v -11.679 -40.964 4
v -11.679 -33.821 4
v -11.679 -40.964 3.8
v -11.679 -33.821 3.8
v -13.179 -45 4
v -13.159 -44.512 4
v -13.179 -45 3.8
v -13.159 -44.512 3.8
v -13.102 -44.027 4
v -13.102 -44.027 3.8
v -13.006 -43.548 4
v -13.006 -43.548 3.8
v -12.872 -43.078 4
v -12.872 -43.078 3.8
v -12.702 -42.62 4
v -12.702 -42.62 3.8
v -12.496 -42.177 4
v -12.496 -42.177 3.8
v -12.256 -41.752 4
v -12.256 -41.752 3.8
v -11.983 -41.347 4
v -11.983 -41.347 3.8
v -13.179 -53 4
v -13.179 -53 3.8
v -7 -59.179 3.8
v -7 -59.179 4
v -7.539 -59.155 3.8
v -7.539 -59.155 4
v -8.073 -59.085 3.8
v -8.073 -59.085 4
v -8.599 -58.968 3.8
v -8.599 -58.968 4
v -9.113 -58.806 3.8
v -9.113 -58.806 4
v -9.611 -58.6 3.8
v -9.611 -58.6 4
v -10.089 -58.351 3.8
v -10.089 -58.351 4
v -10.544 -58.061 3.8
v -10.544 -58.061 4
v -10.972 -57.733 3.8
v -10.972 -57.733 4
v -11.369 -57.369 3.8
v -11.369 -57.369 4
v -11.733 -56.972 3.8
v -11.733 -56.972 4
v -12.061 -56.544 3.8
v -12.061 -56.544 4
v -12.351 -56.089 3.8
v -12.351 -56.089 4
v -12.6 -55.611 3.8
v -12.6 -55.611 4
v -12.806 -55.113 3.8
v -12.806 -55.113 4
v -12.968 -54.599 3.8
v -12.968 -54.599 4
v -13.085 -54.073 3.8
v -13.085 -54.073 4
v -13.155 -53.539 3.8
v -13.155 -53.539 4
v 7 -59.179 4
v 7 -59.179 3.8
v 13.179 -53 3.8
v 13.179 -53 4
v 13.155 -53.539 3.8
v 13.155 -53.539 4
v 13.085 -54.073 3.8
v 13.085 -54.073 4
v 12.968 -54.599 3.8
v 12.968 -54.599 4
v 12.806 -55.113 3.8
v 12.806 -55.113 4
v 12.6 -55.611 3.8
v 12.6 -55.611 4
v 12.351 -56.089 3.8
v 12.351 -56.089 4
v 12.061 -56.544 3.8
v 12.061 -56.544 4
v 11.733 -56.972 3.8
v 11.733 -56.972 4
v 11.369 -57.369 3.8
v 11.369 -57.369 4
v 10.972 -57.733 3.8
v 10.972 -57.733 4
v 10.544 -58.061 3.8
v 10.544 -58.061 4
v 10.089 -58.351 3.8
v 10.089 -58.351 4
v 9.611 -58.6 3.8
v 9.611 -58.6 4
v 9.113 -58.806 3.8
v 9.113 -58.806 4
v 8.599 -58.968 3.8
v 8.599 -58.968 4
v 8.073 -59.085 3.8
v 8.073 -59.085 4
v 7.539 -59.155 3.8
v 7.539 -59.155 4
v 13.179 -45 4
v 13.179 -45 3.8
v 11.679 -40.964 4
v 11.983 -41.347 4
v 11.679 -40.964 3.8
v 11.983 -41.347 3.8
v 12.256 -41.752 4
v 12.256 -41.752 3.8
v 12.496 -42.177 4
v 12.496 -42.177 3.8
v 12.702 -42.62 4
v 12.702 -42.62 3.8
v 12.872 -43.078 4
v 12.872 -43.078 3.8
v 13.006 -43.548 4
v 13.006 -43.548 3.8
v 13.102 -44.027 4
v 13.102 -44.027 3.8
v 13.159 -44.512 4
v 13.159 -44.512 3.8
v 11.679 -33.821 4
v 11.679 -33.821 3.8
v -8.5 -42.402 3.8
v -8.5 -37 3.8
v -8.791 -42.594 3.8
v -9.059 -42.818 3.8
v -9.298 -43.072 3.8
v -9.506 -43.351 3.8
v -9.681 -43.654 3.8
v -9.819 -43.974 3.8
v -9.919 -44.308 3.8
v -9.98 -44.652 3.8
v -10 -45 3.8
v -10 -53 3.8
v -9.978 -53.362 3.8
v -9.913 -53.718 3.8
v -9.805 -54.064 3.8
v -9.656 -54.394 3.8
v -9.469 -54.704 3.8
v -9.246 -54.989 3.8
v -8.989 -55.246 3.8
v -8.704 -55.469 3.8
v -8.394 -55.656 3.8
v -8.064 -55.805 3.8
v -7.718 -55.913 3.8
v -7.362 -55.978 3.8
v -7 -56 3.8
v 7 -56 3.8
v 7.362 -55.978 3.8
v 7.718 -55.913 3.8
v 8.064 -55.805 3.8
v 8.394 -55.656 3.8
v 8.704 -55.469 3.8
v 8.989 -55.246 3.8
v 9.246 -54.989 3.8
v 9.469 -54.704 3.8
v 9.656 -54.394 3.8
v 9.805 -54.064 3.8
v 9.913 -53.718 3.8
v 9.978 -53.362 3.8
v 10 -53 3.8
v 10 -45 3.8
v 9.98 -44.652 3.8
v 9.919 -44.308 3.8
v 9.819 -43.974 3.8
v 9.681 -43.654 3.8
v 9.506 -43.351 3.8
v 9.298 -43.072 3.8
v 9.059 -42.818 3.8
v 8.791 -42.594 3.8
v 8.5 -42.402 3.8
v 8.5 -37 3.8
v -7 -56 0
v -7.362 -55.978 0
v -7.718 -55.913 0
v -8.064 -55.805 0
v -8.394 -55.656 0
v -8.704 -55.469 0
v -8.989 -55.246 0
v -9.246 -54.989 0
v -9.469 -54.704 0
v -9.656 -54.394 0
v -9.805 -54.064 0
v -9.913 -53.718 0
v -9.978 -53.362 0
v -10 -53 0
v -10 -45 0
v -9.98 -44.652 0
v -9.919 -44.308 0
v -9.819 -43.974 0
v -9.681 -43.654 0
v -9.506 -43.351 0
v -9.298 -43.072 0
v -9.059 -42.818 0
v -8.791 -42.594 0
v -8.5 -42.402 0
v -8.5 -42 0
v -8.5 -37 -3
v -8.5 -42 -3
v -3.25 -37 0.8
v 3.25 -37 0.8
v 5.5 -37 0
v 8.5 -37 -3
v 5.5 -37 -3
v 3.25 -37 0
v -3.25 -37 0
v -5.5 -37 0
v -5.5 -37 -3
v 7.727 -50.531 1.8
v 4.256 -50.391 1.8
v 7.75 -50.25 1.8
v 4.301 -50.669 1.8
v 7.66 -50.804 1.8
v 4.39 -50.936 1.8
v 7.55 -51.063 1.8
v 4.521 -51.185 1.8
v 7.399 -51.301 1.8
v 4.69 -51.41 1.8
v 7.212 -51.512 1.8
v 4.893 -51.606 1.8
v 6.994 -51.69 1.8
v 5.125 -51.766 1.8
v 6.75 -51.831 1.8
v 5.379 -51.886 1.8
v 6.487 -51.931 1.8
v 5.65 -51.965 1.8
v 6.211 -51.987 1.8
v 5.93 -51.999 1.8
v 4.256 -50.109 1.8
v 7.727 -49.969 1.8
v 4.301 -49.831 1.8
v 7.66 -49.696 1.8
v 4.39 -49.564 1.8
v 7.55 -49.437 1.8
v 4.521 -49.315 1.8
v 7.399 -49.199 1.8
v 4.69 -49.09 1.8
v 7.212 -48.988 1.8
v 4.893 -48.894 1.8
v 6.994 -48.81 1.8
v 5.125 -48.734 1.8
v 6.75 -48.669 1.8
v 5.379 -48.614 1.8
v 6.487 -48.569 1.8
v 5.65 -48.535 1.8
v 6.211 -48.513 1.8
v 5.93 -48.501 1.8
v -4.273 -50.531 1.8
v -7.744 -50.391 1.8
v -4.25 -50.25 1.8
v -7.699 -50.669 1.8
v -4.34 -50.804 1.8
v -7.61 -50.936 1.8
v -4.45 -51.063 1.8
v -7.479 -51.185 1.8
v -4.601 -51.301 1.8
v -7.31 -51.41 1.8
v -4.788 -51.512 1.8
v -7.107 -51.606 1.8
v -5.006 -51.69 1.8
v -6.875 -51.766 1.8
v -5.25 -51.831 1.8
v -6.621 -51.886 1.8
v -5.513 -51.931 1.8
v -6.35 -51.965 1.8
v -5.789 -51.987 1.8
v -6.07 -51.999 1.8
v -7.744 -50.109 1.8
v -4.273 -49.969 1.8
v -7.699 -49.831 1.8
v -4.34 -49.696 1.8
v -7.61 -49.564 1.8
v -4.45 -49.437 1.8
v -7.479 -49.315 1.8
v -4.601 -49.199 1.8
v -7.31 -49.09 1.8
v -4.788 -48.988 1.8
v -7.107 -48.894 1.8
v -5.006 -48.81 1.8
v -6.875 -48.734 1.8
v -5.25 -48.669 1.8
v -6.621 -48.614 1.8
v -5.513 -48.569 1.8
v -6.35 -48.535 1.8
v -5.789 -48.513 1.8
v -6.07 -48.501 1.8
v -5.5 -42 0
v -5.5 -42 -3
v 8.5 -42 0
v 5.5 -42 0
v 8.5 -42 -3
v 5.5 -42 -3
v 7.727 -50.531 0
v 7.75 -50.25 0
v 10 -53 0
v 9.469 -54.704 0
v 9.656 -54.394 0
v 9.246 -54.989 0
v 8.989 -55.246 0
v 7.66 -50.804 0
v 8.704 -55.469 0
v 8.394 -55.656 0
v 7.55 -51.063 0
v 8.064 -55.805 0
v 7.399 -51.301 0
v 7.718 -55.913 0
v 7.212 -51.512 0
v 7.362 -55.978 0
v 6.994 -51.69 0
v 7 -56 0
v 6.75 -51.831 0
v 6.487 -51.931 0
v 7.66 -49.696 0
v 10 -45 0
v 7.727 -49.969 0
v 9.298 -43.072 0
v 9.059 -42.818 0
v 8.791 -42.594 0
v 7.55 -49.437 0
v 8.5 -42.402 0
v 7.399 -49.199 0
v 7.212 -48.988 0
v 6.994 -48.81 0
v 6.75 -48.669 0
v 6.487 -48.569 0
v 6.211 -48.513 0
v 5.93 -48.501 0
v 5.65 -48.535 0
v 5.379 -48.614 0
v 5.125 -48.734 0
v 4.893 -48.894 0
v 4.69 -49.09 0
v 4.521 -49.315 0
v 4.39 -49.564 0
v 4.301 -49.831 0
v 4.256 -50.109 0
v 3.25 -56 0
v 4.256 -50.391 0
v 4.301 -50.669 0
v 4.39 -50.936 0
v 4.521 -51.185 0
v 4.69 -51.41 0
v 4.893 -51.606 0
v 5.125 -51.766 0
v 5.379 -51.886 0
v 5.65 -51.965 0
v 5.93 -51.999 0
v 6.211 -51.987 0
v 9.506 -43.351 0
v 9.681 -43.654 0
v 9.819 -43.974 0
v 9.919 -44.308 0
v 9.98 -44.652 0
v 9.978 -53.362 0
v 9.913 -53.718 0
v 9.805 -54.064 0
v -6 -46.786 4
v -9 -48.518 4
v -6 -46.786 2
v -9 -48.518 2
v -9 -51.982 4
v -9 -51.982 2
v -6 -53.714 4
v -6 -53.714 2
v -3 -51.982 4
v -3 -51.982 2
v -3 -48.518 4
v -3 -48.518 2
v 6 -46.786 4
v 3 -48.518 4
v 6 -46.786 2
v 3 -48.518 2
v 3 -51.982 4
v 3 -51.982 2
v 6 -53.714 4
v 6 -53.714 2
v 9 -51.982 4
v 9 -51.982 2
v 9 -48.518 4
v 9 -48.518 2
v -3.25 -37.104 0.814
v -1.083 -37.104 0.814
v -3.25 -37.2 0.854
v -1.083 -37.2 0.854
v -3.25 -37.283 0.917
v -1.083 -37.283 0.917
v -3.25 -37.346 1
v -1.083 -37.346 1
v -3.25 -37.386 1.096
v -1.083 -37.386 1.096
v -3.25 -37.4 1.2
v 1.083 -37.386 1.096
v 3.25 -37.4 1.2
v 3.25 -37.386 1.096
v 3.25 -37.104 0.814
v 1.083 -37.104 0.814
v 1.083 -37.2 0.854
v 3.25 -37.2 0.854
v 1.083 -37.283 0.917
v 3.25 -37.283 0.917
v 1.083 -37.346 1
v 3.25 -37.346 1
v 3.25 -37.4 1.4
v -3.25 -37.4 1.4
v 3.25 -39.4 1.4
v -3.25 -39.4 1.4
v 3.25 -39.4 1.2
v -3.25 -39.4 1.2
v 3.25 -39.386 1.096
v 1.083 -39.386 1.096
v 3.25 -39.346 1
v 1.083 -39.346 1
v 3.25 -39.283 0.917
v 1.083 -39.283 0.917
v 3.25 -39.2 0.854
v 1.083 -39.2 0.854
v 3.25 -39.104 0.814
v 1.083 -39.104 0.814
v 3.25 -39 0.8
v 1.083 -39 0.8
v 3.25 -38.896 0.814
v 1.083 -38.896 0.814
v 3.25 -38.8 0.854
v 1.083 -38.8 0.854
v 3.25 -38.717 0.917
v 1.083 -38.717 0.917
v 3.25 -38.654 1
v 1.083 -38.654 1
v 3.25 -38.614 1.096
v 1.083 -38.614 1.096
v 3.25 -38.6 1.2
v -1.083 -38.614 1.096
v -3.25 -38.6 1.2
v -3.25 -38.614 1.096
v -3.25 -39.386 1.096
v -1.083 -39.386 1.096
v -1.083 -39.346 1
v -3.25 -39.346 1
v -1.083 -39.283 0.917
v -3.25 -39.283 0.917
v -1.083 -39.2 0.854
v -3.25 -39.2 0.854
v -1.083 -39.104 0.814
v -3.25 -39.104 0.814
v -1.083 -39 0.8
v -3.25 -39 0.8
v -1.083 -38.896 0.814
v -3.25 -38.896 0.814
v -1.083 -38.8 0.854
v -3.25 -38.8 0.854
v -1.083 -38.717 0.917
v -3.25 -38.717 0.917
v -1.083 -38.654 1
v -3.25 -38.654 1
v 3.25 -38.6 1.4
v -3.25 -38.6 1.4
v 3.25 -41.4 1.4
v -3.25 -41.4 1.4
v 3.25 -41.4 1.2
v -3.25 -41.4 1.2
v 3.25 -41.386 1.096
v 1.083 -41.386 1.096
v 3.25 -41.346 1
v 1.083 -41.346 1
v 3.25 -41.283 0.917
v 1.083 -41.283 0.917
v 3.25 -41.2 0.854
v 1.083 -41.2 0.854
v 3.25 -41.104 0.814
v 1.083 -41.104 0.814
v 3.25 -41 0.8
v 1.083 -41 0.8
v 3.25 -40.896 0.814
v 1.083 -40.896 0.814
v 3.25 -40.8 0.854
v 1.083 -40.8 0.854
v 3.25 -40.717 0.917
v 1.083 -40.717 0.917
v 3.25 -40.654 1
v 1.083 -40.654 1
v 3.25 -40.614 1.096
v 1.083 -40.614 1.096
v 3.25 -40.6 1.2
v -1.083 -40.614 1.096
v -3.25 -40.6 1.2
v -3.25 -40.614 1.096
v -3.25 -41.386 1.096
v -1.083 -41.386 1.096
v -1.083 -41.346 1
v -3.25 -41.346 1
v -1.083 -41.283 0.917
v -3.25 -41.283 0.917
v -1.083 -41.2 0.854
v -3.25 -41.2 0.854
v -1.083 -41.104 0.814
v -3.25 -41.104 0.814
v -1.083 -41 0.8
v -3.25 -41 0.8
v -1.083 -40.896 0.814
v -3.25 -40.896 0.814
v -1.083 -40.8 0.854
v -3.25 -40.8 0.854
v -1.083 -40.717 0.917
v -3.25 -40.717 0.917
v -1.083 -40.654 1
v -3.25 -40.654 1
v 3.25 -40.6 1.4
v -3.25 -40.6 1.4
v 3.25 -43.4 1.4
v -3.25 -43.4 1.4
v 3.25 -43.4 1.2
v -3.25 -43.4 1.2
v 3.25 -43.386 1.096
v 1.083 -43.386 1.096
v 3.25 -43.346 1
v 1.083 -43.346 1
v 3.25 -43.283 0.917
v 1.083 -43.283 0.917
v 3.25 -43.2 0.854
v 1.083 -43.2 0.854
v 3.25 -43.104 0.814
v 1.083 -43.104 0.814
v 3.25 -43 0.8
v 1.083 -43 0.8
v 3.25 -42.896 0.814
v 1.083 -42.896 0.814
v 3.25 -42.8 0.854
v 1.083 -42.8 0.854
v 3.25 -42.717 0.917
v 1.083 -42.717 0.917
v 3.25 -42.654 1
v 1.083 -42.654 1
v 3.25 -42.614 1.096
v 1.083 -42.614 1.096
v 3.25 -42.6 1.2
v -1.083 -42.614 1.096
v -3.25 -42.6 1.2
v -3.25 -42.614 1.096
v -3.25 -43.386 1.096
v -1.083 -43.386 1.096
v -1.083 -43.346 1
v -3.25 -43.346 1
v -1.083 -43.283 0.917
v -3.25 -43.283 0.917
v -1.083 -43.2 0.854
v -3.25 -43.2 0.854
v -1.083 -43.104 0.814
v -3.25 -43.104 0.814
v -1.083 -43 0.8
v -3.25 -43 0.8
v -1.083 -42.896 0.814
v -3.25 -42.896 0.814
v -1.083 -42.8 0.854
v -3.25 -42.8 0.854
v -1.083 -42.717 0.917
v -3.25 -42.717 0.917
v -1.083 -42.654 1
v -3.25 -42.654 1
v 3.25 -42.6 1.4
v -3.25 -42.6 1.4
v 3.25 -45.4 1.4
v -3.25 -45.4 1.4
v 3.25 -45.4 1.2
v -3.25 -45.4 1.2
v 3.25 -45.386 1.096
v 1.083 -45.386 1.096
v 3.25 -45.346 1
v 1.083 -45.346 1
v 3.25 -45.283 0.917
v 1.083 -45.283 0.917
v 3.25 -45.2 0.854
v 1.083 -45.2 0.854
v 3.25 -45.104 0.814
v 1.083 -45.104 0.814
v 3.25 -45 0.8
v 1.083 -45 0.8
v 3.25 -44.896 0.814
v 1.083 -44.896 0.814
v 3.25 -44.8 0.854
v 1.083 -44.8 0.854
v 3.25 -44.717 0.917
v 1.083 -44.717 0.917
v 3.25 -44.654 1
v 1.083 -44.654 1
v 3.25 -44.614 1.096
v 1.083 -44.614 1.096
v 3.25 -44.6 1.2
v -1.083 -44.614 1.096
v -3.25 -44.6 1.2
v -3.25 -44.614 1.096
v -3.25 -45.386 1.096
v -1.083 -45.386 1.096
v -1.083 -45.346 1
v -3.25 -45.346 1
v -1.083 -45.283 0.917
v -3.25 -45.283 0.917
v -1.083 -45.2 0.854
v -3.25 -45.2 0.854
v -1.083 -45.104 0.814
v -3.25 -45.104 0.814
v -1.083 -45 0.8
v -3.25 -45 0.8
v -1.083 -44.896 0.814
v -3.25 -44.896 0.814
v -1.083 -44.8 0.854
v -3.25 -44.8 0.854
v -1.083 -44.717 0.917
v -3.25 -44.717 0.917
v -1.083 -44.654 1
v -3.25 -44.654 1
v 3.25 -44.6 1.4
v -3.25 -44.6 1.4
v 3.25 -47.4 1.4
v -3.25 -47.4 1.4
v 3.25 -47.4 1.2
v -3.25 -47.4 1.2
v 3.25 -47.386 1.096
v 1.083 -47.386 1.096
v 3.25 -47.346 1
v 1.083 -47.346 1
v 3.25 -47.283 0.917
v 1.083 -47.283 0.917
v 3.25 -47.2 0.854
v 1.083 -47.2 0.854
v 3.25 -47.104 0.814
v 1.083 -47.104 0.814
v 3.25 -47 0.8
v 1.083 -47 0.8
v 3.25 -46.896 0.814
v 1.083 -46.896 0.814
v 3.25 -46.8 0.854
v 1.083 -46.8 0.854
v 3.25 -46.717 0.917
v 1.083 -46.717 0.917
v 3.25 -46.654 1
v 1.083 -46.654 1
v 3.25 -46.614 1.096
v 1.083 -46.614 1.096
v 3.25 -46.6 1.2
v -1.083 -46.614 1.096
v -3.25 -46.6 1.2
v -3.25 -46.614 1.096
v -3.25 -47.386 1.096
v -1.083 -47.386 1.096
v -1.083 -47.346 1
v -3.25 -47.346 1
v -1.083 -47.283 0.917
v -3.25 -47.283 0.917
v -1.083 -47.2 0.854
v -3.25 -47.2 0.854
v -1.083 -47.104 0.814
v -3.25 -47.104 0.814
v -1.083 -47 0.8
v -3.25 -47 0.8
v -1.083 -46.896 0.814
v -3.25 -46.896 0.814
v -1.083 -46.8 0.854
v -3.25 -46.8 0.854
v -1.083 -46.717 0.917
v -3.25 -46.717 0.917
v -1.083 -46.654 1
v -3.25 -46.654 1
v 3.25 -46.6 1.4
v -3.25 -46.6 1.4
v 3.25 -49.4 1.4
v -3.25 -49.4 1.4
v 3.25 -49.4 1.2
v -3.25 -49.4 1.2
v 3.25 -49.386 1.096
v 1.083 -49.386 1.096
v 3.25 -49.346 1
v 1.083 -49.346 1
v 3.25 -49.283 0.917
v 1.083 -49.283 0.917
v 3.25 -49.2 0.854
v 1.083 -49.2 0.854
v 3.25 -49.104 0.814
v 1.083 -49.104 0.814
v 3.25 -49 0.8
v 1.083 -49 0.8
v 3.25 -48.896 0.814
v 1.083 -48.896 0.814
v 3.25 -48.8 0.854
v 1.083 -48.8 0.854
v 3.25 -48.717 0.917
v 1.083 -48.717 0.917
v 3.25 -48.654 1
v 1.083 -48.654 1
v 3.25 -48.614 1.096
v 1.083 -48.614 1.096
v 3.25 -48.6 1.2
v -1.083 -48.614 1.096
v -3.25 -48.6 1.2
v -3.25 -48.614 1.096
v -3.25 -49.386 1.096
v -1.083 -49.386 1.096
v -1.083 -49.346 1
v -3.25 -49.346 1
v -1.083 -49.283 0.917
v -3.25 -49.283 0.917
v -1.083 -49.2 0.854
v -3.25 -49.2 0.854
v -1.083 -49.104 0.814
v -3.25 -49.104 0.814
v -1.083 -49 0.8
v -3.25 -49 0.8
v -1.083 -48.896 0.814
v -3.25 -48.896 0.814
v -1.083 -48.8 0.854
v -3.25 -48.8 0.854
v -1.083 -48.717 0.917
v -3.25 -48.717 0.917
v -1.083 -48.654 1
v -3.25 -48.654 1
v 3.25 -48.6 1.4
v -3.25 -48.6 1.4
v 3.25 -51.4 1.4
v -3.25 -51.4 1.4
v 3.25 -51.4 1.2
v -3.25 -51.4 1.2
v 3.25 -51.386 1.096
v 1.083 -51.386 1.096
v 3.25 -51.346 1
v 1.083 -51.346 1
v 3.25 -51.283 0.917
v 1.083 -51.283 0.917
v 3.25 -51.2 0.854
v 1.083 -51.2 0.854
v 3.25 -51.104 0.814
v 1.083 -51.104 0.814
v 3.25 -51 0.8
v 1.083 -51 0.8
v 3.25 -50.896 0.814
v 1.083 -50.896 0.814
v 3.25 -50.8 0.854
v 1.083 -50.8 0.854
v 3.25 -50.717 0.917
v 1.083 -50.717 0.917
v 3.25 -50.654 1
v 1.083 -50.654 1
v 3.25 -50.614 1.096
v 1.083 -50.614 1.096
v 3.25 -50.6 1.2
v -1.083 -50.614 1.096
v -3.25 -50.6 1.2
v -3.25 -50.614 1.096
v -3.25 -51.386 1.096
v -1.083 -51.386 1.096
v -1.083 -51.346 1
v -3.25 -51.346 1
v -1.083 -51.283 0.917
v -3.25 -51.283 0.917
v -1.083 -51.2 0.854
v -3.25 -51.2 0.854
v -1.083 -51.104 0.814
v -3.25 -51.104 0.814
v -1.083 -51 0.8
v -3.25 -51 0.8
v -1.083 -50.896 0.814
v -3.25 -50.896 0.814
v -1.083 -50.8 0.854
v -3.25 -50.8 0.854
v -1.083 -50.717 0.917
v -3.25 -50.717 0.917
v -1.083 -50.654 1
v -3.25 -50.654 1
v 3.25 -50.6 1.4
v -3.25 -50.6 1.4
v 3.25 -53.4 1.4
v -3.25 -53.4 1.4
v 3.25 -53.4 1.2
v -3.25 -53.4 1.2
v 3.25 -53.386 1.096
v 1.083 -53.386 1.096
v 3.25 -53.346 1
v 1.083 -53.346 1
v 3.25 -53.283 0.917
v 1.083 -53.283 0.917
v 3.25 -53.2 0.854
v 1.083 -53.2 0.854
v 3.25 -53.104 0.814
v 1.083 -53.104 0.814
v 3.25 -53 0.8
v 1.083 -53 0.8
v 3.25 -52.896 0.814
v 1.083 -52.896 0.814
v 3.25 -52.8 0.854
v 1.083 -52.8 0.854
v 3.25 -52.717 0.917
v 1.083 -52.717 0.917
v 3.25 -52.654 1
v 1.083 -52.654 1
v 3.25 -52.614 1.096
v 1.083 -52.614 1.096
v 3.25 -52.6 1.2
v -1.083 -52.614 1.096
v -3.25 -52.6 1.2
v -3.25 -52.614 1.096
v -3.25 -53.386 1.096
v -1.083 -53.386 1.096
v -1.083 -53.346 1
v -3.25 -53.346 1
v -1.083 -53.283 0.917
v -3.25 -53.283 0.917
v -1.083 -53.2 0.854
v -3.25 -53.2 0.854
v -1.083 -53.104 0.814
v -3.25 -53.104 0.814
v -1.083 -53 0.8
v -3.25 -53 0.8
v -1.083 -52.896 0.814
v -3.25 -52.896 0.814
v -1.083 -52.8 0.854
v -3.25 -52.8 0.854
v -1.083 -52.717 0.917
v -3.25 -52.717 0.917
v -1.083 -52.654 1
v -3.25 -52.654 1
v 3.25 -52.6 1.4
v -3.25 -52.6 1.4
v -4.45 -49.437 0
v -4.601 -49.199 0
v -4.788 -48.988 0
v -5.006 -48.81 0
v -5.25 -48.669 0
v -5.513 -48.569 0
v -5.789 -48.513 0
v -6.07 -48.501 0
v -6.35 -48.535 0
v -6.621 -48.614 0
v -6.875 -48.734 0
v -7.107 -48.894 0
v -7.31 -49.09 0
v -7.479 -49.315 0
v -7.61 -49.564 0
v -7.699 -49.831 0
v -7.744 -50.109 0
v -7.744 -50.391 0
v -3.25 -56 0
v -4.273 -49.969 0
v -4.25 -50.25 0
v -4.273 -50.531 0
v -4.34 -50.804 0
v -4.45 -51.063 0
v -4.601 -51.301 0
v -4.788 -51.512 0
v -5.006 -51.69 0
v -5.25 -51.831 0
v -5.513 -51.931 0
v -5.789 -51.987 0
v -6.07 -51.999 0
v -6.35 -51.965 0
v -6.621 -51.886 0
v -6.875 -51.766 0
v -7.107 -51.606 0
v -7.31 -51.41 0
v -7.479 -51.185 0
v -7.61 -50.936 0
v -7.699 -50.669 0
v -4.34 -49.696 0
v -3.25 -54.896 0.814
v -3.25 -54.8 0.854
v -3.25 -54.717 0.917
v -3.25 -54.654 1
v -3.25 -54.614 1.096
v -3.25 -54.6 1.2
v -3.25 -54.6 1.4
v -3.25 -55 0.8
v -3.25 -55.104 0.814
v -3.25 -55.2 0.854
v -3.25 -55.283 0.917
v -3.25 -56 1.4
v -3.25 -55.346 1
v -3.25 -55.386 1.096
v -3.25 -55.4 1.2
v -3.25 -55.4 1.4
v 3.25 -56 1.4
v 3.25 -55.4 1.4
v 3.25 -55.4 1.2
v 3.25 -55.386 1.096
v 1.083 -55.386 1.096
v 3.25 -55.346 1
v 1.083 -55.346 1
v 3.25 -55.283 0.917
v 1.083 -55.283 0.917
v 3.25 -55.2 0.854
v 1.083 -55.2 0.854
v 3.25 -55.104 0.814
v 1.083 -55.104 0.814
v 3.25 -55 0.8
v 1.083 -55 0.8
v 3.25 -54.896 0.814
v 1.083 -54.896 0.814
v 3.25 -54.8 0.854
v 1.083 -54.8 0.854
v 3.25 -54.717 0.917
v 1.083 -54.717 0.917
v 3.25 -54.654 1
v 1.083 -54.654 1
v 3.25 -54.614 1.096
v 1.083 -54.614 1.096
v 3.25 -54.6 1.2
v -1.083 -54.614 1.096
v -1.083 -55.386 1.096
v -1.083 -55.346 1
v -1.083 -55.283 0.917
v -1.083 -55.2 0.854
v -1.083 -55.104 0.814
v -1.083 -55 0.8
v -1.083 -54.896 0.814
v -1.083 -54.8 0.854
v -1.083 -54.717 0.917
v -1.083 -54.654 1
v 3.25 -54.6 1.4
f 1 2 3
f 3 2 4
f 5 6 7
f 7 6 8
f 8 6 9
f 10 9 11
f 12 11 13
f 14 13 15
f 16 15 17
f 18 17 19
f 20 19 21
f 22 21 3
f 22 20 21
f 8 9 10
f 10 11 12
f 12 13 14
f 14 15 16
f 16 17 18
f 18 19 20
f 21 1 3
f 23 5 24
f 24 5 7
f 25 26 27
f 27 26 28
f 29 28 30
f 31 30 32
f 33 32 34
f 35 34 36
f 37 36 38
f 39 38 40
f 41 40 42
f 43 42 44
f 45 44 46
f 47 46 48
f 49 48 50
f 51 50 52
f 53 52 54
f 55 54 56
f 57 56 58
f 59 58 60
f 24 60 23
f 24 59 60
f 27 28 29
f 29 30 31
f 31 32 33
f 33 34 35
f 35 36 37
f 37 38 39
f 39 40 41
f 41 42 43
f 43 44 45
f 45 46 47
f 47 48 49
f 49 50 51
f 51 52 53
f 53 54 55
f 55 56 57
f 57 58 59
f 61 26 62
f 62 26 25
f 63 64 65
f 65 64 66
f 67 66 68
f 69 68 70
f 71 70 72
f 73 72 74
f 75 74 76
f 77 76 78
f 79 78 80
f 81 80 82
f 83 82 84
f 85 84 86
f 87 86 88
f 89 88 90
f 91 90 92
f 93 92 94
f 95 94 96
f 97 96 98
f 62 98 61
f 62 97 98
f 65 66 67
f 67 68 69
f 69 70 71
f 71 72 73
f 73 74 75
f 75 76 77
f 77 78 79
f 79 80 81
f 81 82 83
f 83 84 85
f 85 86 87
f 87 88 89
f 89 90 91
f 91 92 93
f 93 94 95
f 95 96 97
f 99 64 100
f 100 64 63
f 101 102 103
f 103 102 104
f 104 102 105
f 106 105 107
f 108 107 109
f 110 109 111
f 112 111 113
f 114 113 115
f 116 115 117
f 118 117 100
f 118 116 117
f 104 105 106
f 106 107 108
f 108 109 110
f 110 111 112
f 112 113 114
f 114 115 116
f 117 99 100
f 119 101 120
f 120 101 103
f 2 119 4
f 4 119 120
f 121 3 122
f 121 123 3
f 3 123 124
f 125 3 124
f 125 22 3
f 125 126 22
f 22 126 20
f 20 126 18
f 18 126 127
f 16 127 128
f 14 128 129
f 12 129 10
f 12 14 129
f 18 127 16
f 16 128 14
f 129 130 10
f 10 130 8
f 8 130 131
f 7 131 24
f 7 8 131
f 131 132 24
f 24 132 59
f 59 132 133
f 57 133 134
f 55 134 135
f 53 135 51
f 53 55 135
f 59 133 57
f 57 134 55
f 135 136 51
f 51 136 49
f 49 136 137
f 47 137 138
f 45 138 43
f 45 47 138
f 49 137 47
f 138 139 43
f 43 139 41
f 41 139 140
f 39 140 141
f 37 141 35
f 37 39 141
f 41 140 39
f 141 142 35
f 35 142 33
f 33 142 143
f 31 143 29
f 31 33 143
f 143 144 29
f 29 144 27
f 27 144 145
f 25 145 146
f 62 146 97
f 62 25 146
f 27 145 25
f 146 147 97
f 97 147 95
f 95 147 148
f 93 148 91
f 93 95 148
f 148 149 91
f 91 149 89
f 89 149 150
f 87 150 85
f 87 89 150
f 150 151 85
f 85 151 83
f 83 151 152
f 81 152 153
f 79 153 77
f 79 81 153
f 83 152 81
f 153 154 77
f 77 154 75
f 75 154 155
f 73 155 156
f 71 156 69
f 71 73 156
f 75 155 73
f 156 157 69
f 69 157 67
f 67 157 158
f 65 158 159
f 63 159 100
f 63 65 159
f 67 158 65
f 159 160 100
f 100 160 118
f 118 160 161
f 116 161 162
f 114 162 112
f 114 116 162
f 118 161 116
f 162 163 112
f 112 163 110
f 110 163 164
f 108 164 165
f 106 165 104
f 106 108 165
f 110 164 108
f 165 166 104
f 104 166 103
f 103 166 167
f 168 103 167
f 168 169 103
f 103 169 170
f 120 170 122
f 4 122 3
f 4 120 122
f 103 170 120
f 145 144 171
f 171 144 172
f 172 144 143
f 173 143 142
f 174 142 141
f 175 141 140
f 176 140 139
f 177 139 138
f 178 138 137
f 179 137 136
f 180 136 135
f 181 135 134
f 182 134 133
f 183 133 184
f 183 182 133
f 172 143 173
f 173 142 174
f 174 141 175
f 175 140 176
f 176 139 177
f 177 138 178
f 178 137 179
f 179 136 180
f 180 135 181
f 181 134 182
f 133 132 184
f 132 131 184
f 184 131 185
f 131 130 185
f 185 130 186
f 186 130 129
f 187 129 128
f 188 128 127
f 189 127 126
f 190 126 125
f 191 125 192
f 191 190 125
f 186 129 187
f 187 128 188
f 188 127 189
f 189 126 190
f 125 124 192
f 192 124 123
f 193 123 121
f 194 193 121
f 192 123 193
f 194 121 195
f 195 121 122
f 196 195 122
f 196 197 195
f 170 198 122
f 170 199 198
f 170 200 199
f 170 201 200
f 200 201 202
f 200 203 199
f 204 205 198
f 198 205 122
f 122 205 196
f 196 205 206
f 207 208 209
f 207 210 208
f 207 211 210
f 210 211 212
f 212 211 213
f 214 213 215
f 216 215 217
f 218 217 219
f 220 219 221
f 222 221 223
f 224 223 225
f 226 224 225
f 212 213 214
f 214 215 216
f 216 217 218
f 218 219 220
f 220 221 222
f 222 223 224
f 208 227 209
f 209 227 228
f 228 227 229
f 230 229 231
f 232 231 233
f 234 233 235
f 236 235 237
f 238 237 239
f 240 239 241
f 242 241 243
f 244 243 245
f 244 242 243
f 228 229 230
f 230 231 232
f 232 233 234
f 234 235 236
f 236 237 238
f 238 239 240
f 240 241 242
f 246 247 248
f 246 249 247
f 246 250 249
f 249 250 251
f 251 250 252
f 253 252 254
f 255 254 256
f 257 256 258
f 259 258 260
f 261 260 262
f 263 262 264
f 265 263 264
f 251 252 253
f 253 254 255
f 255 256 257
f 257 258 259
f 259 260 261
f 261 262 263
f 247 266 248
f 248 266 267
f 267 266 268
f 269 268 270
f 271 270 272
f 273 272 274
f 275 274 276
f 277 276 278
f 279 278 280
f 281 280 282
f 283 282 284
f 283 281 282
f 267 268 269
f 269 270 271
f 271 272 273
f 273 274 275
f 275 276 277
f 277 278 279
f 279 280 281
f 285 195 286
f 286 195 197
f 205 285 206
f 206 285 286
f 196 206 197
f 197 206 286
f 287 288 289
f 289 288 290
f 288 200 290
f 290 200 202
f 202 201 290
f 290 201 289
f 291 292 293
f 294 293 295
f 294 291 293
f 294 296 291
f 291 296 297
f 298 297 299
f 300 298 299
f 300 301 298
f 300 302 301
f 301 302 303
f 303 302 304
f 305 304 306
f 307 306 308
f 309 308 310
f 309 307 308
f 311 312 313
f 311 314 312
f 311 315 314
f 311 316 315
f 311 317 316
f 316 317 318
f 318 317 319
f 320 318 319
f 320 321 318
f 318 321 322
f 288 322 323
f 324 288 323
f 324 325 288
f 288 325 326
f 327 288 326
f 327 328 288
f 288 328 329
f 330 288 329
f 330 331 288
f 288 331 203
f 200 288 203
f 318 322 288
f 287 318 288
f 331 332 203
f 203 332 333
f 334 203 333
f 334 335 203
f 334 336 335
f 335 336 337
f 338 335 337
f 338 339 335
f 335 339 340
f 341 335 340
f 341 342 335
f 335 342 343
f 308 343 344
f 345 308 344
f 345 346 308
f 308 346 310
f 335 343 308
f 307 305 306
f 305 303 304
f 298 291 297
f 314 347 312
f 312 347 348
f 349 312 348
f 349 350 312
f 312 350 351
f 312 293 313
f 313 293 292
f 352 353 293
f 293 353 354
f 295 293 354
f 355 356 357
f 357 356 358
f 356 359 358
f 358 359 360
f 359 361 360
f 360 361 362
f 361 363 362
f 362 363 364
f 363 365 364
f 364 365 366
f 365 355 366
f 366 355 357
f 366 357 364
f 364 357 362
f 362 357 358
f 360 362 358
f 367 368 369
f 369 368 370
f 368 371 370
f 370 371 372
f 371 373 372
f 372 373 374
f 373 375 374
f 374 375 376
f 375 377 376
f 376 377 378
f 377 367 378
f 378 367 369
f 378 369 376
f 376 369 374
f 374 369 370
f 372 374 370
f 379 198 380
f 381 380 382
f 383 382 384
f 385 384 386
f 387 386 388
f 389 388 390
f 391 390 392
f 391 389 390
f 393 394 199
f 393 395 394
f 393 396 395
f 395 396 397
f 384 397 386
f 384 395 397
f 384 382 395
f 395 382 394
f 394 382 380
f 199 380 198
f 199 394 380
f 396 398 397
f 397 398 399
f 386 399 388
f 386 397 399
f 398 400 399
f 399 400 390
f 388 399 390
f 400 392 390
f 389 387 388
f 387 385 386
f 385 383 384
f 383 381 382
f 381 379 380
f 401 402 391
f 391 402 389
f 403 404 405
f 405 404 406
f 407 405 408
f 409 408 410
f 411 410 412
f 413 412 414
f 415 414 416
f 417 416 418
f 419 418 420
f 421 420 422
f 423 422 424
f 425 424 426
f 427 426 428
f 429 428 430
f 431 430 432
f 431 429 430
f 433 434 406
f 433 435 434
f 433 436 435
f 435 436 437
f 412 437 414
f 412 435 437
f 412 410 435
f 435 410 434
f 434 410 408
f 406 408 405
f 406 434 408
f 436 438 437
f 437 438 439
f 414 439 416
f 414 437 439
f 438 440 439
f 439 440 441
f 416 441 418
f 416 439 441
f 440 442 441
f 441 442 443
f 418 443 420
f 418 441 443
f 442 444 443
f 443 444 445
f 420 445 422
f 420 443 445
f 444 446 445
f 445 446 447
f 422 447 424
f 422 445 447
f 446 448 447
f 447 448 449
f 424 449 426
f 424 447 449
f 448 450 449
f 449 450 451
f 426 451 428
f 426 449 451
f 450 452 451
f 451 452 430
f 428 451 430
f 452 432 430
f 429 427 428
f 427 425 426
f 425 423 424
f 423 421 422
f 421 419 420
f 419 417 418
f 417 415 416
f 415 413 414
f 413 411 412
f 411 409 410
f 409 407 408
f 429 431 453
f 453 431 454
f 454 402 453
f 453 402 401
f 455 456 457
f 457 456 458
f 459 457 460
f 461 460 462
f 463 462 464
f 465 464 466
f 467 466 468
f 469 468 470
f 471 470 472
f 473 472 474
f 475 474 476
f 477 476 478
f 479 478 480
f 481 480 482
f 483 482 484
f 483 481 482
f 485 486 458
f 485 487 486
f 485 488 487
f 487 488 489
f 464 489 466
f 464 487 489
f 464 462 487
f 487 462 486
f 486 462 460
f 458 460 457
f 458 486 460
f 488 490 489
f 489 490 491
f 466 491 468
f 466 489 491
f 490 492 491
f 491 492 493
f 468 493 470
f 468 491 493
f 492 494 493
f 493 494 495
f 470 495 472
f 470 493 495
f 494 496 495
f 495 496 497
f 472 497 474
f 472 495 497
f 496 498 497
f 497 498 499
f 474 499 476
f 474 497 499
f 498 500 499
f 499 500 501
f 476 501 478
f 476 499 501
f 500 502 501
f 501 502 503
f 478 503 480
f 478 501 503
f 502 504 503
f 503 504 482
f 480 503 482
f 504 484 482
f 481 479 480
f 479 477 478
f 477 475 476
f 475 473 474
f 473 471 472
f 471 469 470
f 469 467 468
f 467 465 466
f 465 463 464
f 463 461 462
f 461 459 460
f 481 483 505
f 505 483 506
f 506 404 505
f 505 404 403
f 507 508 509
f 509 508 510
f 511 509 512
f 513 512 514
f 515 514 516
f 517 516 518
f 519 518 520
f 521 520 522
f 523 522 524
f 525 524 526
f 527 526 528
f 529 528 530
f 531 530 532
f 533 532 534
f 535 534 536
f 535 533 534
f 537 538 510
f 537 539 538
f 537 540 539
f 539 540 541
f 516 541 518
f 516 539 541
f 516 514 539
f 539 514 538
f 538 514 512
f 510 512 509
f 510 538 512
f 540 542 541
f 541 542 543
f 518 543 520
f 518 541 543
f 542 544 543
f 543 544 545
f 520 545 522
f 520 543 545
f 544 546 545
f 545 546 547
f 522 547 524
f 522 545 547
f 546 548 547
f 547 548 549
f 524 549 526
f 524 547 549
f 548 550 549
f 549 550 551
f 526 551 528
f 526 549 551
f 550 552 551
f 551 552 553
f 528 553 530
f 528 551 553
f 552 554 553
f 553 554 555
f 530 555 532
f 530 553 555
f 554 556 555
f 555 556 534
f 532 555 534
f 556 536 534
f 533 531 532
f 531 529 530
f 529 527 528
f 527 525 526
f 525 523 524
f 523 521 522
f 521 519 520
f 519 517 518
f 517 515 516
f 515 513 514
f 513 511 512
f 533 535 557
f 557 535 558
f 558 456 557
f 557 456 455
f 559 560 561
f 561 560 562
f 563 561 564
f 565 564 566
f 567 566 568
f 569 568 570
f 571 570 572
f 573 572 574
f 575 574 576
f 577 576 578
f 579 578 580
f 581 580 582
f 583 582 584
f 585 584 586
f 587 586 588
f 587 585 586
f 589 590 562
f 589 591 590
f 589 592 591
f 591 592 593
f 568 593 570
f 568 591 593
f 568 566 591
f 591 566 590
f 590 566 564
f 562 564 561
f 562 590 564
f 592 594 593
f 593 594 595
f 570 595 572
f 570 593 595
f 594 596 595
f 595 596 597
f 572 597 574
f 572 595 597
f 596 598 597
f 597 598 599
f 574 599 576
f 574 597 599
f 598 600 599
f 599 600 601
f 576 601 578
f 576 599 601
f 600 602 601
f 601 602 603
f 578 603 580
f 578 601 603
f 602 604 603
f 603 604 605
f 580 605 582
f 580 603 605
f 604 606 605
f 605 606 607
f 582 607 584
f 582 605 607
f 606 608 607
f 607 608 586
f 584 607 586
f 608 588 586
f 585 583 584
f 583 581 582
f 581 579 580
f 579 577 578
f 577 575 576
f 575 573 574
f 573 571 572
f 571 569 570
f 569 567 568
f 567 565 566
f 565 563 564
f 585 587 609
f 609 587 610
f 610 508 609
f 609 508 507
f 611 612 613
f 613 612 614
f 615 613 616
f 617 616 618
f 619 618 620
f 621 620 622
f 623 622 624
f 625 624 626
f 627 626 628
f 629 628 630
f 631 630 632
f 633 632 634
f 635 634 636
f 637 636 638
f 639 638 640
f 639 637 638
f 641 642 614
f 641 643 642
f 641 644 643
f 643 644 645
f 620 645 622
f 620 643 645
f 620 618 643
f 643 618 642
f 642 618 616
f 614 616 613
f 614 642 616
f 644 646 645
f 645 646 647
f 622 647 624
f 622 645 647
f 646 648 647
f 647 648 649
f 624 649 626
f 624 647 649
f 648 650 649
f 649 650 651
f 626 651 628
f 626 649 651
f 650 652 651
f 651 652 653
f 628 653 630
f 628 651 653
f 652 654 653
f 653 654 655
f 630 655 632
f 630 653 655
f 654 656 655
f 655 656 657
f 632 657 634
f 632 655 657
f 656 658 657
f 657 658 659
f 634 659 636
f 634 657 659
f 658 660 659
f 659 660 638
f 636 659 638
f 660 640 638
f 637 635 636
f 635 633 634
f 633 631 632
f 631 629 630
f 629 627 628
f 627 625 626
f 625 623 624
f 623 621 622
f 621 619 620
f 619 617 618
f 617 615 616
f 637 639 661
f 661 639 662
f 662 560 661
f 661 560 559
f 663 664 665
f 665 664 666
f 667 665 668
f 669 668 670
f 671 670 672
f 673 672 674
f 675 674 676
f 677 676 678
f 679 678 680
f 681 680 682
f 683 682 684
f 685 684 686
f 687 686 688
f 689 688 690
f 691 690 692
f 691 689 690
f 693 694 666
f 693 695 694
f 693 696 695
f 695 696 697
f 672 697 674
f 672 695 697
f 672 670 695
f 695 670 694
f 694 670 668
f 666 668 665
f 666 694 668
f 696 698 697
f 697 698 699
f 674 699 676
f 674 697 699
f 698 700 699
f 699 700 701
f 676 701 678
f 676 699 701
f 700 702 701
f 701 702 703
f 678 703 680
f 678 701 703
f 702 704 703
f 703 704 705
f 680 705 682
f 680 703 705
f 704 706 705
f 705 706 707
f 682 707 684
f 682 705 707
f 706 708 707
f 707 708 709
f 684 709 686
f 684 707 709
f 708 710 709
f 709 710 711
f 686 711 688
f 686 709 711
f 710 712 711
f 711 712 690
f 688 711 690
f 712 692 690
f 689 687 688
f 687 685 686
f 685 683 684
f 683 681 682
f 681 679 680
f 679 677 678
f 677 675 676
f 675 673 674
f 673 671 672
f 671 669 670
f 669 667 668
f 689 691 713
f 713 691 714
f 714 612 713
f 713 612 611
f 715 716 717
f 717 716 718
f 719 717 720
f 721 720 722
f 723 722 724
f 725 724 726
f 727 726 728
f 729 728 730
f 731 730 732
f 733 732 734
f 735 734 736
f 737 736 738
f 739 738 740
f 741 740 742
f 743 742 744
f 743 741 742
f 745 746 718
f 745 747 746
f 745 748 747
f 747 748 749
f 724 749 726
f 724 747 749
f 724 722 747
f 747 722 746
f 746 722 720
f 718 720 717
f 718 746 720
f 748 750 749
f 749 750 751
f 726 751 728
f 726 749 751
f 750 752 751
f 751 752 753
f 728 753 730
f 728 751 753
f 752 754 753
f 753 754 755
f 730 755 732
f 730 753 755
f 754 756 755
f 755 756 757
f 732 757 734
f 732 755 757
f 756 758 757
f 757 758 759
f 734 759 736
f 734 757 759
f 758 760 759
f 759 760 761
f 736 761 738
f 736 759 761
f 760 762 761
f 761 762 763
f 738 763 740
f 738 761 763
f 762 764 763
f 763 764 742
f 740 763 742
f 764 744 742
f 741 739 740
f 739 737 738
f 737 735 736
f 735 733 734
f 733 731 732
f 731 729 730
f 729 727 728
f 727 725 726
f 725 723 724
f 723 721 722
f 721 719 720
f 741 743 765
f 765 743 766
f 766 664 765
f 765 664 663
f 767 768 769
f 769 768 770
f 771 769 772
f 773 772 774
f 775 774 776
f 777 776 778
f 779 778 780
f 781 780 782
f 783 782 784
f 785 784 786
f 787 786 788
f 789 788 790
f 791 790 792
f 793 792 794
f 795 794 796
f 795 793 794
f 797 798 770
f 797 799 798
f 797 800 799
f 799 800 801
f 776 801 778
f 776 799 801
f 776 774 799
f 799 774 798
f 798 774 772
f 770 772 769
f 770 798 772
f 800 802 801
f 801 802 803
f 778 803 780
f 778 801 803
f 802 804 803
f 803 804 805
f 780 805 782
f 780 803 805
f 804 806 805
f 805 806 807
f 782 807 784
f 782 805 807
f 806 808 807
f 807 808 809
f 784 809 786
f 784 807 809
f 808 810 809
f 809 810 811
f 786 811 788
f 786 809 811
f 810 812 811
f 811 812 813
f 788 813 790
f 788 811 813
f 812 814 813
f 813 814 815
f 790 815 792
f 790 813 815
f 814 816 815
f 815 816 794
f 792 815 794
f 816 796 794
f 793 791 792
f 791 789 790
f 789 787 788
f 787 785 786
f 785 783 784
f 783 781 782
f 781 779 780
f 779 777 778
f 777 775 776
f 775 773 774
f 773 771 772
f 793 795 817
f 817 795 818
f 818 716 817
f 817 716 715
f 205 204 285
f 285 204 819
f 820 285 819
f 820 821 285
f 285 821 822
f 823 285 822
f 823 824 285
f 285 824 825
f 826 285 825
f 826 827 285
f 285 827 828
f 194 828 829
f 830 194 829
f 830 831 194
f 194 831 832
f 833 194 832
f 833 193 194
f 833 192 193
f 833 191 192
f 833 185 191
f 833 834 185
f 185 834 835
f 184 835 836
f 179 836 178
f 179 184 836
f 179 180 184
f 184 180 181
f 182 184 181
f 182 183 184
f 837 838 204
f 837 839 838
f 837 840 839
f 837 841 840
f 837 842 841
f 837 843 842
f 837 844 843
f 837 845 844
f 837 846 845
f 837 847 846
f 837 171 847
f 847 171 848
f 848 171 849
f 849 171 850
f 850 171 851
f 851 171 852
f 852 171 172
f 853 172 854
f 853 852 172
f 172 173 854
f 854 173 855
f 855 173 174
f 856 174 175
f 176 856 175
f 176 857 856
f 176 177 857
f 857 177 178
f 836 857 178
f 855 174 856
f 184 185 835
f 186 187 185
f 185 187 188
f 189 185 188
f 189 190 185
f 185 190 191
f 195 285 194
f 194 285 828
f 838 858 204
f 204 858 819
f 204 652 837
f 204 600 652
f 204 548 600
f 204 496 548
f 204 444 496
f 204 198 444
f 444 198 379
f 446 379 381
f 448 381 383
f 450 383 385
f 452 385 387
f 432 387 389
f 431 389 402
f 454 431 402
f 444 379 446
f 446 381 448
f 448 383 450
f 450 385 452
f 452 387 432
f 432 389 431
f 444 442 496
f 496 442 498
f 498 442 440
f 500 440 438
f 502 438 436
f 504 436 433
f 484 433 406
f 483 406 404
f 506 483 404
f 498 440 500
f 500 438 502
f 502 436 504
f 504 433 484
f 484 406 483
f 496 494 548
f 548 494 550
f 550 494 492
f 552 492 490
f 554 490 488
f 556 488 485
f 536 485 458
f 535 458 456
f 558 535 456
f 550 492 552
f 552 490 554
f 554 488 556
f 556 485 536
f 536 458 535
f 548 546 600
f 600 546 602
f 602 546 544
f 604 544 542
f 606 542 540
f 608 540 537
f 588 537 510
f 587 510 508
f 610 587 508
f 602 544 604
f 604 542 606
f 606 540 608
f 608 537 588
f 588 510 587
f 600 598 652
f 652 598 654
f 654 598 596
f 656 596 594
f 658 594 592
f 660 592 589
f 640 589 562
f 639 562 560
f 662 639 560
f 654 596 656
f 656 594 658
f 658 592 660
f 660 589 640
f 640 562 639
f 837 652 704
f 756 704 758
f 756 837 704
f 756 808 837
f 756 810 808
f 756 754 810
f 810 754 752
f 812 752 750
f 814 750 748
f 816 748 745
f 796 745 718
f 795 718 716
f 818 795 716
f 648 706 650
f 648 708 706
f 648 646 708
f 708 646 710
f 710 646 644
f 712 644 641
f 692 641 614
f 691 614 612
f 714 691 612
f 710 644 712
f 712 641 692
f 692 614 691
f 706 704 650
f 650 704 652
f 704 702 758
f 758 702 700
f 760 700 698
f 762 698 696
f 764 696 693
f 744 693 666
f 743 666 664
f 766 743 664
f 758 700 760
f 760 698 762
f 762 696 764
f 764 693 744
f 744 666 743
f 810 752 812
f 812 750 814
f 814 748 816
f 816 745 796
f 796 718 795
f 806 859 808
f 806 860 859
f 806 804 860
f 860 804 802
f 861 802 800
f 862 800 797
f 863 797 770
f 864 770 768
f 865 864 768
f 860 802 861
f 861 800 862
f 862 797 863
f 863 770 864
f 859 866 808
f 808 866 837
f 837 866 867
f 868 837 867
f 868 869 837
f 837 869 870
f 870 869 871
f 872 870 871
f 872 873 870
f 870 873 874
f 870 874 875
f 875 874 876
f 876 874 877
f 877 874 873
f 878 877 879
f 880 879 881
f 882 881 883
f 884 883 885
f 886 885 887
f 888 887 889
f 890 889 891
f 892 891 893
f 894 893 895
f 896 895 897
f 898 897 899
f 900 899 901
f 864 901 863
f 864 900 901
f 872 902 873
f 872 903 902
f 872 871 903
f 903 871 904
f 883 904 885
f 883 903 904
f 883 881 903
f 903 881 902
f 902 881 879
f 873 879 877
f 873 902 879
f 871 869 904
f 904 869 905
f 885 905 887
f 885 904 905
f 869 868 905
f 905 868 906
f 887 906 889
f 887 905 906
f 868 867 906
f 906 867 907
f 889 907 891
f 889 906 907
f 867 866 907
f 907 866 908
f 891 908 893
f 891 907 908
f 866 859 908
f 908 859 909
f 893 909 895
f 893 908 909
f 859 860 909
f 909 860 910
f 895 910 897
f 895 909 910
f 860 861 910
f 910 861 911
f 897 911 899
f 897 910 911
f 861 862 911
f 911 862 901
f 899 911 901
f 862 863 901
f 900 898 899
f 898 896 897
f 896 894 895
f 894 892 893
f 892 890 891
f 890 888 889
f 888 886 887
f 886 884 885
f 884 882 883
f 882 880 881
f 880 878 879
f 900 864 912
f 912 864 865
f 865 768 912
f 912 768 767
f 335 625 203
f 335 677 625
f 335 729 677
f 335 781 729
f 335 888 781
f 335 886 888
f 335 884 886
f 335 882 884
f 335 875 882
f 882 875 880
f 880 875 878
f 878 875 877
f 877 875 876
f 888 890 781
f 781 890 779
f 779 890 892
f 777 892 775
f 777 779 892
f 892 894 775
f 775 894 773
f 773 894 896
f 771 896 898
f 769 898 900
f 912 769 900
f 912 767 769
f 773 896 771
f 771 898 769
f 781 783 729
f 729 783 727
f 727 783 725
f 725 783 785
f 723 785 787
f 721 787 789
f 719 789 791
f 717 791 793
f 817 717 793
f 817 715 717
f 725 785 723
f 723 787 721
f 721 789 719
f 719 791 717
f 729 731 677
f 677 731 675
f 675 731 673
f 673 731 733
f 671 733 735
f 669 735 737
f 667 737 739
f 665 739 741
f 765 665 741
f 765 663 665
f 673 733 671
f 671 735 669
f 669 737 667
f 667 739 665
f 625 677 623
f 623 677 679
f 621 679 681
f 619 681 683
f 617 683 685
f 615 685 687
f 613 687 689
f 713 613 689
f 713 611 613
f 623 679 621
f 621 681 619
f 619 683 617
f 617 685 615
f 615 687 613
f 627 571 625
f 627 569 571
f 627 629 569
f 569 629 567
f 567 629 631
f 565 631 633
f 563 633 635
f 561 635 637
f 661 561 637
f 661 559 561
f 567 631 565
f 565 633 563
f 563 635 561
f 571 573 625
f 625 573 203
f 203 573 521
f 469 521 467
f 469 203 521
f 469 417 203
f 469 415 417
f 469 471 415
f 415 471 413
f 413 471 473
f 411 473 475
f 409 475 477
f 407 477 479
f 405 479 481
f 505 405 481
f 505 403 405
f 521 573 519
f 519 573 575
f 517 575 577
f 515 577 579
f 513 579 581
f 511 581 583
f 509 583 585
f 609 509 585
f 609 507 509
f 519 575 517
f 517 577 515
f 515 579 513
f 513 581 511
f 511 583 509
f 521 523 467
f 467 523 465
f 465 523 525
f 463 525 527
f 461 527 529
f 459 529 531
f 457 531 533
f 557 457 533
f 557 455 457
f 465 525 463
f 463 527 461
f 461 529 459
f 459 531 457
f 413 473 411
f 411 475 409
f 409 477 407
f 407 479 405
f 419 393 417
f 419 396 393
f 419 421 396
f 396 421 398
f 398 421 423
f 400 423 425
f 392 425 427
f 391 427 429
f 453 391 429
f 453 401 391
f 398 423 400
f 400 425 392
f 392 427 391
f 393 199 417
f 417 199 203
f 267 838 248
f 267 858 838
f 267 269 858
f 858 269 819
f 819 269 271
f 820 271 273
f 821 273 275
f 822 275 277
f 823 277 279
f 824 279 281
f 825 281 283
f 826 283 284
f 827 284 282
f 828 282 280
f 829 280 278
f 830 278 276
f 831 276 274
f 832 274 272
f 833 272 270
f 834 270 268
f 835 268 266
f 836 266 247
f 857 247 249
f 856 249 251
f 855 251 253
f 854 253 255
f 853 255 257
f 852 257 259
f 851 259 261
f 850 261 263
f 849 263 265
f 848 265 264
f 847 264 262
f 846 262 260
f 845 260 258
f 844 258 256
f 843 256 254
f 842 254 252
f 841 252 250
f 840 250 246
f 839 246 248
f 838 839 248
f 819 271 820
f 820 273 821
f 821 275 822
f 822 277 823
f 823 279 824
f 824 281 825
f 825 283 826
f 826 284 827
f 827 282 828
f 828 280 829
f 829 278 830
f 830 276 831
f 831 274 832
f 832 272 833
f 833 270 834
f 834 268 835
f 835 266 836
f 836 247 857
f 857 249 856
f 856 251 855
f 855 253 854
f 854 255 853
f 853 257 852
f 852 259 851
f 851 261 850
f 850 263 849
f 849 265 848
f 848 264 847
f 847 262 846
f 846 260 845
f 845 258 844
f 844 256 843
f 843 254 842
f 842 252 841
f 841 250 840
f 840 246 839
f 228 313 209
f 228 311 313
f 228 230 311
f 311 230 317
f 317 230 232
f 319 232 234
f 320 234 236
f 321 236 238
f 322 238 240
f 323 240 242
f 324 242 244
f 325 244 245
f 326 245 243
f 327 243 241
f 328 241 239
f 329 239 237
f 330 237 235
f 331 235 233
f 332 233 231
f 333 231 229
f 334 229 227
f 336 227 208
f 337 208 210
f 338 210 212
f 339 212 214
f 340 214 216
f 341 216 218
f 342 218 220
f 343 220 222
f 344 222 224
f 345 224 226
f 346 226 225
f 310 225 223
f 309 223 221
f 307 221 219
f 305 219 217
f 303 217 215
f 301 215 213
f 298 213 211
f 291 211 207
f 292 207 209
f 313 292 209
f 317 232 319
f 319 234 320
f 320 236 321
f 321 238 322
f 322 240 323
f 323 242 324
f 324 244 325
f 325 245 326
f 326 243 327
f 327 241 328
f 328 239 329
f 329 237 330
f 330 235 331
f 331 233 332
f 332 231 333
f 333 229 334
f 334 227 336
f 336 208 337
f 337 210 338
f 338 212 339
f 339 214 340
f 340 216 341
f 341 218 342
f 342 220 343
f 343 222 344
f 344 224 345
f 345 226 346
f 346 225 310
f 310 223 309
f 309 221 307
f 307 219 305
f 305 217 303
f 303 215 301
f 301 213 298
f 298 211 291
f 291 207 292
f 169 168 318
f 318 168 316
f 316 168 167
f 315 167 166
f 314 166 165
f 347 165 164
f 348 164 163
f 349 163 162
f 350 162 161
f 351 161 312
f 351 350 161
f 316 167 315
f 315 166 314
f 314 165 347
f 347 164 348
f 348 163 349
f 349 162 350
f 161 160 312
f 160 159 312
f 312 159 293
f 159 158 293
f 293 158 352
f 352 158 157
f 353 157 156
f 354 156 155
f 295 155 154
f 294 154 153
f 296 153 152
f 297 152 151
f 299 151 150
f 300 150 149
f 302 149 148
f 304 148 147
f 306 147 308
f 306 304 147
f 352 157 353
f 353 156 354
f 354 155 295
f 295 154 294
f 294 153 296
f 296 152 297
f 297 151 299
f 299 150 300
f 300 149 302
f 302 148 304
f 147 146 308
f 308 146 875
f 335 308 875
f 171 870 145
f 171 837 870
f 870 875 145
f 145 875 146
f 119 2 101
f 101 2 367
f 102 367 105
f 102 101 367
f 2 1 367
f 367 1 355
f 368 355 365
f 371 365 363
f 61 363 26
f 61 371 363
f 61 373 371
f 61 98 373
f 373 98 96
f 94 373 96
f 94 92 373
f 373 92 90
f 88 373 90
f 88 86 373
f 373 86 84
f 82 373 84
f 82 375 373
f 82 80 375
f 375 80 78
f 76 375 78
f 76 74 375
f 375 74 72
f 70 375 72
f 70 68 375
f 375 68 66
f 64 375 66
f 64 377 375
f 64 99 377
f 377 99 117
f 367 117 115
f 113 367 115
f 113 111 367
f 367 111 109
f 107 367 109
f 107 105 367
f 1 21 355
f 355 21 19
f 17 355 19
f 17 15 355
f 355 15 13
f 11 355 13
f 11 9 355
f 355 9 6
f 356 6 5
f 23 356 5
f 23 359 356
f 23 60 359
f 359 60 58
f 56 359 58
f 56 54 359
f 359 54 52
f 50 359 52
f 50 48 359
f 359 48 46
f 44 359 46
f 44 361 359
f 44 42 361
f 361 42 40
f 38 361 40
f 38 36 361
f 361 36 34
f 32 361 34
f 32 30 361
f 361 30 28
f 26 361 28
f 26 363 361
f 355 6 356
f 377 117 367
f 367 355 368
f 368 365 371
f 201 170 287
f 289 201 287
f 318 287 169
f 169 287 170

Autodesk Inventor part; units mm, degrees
ref_plane "YZ Plane" through (0, 0, 0) normal (1, 0, 0) x (0, 1, 0)
ref_plane "Płaszczyzna konstrukcyjna1" through (0, 0, 0) normal (0, 0, 1) x (1, 0, 0)
sketch "Szkic1" plane through (0, 0, 0) normal (0, 0, 1) x (1, 0, 0)
  circle A0 centre (6, -50.25) radius 1.75 projected
  circle A1 centre (-6, -50.25) radius 1.75 projected
  circle A2 centre (6, -3.75) radius 1.75 construction
  circle A3 centre (-6, -3.75) radius 1.75 construction
  arc A4 (7, -56) -> (10, -53) centre (7, -53) ccw projected
  line L0 (10, -53) -> (10, -45) projected
  arc A5 (10, -45) -> (7, -42) centre (7, -45) ccw projected
  line L1 (7, -42) -> (5, -42) projected
  line L2 (5, -42) -> (5, -12) construction
  line L3 (5, -12) -> (7, -12) construction
  arc A6 (7, -12) -> (10, -9) centre (7, -9) ccw construction
  line L4 (10, -9) -> (10, -1) construction
  arc A7 (10, -1) -> (7, 2) centre (7, -1) ccw construction
  line L5 (7, 2) -> (-7, 2) construction
  arc A8 (-7, 2) -> (-10, -1) centre (-7, -1) ccw construction
  line L6 (-10, -1) -> (-10, -9) construction
  arc A9 (-10, -9) -> (-7, -12) centre (-7, -9) ccw construction
  line L7 (-7, -12) -> (-5, -12) construction
  line L8 (-5, -12) -> (-5, -42) construction
  line L9 (-5, -42) -> (-7, -42) projected
  arc A10 (-7, -42) -> (-10, -45) centre (-7, -45) ccw projected
  line L10 (-10, -45) -> (-10, -53) projected
  arc A11 (-10, -53) -> (-7, -56) centre (-7, -53) ccw projected
  line L11 (-7, -56) -> (7, -56) projected
  line L12 (-5.5, -42) -> (5.5, -42)
  line L13 (5.5, -42) -> (5.5, -37)
  line L14 (5.5, -37) -> (-5.5, -37)
  line L15 (-5.5, -37) -> (-5.5, -42)
  line L16 (0, -56) -> (0, 2) construction
  line L17 (-5.5, -37) -> (-8.5, -37)
  line L18 (-8.5, -37) -> (-8.5, -42)
  line L19 (-8.5, -42) -> (-5.5, -42)
  line L20 (-5.5, -42) -> (-5.5, -37)
  line L21 (5.5, -37) -> (8.5, -37)
  line L22 (8.5, -37) -> (8.5, -42)
  line L23 (8.5, -42) -> (5.5, -42)
  line L24 (5.5, -42) -> (5.5, -37)
  line L25 (-8.5, -42) -> (-8.5, -42.4019)
  line L26 (8.5, -42) -> (8.5, -42.4019)
  dimension "d0" = 11
  dimension "d1" = 3
  dimension "d2" = 3
  dimension "d3" = 5
extrude "Wyciągnięcie proste1" add sketch "Szkic1" along normal blind 4
ref_plane "Płaszczyzna konstrukcyjna2" through (0, -53, 0) normal (1, 0, 0) x (0, 0, -1)
sketch "Szkic2" plane through (0, -53, 0) normal (1, 0, 0) x (0, 0, -1)
  line L0 (0, -3) -> (-4, -3) projected
  line L1 (-4, -3) -> (-4, 16) projected
  line L2 (-4, 16) -> (0, 16) projected
  line L3 (0, 16) -> (0, -3) projected
  line L4 (-1.4, -3) -> (-1.4, -1) construction
  line L5 (-1.4, -3) -> (-1.4, -2.4)
  line L6 (-1.4, -2.4) -> (-1.2, -2.4)
  arc A0 (-1.2, -2.4) -> (-1.2, -1.6) centre (-1.2, -2) ccw
  line L7 (-1.2, -1.6) -> (-1.4, -1.6)
  line L8 (-1.4, -1.6) -> (-1.4, -1)
  line L9 (-1.4, -2) -> (-1.2, -2) construction
  line L10 (-1.4, -1) -> (0, -1)
  line L11 (0, -1) -> (0, -3)
  line L12 (0, -3) -> (-1.4, -3)
  point P0 (0, 53)
  dimension "d6" = 2
  dimension "d7" = 1.4
  dimension "d8" = 0.4
  dimension "d9" = 0.2
extrude "Wyciągnięcie proste2" cut sketch "Szkic2" along normal mid plane 6.5 contours L0 L5 L6 A0 L7 L8 L10 L3
pattern_linear "Szyk prostokątny1" count 10 spacing 2 along (0, 1, 0) of "Wyciągnięcie proste2"
sketch "Szkic3" plane through (0, 0, 4) normal (0, 0, 1) x (1, 0, 0)
  circle A0 centre (-6, -50.25) radius 1.75 projected
  circle A1 centre (6, -50.25) radius 1.75 projected
  line L0 (10, -53) -> (10, -45) projected
  line L1 (-6, -46.7859) -> (-3, -48.5179)
  line L2 (-3, -48.5179) -> (-3, -51.9821)
  line L3 (-3, -51.9821) -> (-6, -53.7141)
  line L4 (-6, -53.7141) -> (-9, -51.9821)
  line L5 (-9, -51.9821) -> (-9, -48.5179)
  line L6 (-9, -48.5179) -> (-6, -46.7859)
  line L7 (6, -46.7859) -> (9, -48.5179)
  line L8 (9, -48.5179) -> (9, -51.9821)
  line L9 (9, -51.9821) -> (6, -53.7141)
  line L10 (6, -53.7141) -> (3, -51.9821)
  line L11 (3, -51.9821) -> (3, -48.5179)
  line L12 (3, -48.5179) -> (6, -46.7859)
  point P0 (0, 0)
  dimension "d23" = 6
  dimension "d24" = 6
extrude "Wyciągnięcie proste3" cut sketch "Szkic3" against normal blind 2
sketch "Szkic4" plane through (0, 0, 0) normal (0, 0, -1) x (-1, 0, 0)
  line L0 (8.5, -37) -> (8.5, -42.4019) projected
  line L1 (3.25, -37) -> (8.5, -37) projected
  line L2 (-5.5, -42) -> (-5.5, -37) projected
  line L3 (-8.5, -42) -> (-5.5, -42) projected
  line L4 (5.5, -42) -> (5.5, -37) projected
  line L5 (8.5, -42) -> (5.5, -42) projected
  line L6 (-3.25, -56) -> (-3.25, -37) projected
  line L7 (-8.5, -37) -> (-3.25, -37) projected
  line L8 (-8.5, -42.4019) -> (-8.5, -37) projected
  arc A0 (-8.5, -42.4019) -> (-10, -45) centre (-7, -45) ccw projected
  line L9 (-10, -53) -> (-10, -45) projected
  arc A1 (-10, -53) -> (-7, -56) centre (-7, -53) ccw projected
  line L10 (-3.25, -56) -> (-7, -56) projected
  circle A2 centre (-6, -50.25) radius 1.75 projected
  line L11 (-8.5, -42) -> (-8.5, -37)
  line L12 (-8.5, -37) -> (-5.5, -37)
  point P0 (0, 0)
extrude "Wyciągnięcie proste4" add sketch "Szkic4" along normal blind 3 contours L0 L5 L4 L1 | L3 L8 L7 L2
sketch "Szkic5" plane through (6, -50.25, 2) normal (0, 0, 1) x (1, 0, 0)
  circle A0 centre (0, 0) radius 1.75 projected
  circle A1 centre (-12, 0) radius 1.75 projected
  point P0 (-6, 50.25)
extrude "Wyciągnięcie proste5" add sketch "Szkic5" against normal blind 0.2
sketch "Szkic6" plane through (0, 0, 4) normal (0, 0, 1) x (1, 0, 0)
  line L0 (8.5, -37) -> (-8.5, -37) projected
  line L1 (-8.5, -37) -> (-8.5, -42.4019) projected
  arc A0 (-8.5, -42.4019) -> (-10, -45) centre (-7, -45) ccw projected
  line L2 (-10, -45) -> (-10, -53) projected
  arc A1 (-10, -53) -> (-7, -56) centre (-7, -53) ccw projected
  line L3 (-7, -56) -> (7, -56) projected
  arc A2 (7, -56) -> (10, -53) centre (7, -53) ccw projected
  line L4 (10, -53) -> (10, -45) projected
  arc A3 (10, -45) -> (8.5, -42.4019) centre (7, -45) ccw projected
  line L5 (8.5, -42.4019) -> (8.5, -37) projected
  line L6 (-11.6786, -33.8214) -> (11.6786, -33.8214)
  line L7 (11.6786, -33.8214) -> (11.6786, -40.9644)
  arc A4 (13.1786, -45) -> (11.6786, -40.9644) centre (7, -45) ccw
  line L8 (13.1786, -45) -> (13.1786, -53)
  arc A5 (7, -59.1786) -> (13.1786, -53) centre (7, -53) ccw
  line L9 (7, -59.1786) -> (-7, -59.1786)
  arc A6 (-13.1786, -53) -> (-7, -59.1786) centre (-7, -53) ccw
  line L10 (-13.1786, -53) -> (-13.1786, -45)
  arc A7 (-11.6786, -40.9644) -> (-13.1786, -45) centre (-7, -45) ccw
  line L11 (-11.6786, -40.9644) -> (-11.6786, -33.8214)
  point P0 (0, 0)
extrude "Wyciągnięcie proste6" add sketch "Szkic6" against normal blind 0.2
properties part number "bed_belt_clip"
